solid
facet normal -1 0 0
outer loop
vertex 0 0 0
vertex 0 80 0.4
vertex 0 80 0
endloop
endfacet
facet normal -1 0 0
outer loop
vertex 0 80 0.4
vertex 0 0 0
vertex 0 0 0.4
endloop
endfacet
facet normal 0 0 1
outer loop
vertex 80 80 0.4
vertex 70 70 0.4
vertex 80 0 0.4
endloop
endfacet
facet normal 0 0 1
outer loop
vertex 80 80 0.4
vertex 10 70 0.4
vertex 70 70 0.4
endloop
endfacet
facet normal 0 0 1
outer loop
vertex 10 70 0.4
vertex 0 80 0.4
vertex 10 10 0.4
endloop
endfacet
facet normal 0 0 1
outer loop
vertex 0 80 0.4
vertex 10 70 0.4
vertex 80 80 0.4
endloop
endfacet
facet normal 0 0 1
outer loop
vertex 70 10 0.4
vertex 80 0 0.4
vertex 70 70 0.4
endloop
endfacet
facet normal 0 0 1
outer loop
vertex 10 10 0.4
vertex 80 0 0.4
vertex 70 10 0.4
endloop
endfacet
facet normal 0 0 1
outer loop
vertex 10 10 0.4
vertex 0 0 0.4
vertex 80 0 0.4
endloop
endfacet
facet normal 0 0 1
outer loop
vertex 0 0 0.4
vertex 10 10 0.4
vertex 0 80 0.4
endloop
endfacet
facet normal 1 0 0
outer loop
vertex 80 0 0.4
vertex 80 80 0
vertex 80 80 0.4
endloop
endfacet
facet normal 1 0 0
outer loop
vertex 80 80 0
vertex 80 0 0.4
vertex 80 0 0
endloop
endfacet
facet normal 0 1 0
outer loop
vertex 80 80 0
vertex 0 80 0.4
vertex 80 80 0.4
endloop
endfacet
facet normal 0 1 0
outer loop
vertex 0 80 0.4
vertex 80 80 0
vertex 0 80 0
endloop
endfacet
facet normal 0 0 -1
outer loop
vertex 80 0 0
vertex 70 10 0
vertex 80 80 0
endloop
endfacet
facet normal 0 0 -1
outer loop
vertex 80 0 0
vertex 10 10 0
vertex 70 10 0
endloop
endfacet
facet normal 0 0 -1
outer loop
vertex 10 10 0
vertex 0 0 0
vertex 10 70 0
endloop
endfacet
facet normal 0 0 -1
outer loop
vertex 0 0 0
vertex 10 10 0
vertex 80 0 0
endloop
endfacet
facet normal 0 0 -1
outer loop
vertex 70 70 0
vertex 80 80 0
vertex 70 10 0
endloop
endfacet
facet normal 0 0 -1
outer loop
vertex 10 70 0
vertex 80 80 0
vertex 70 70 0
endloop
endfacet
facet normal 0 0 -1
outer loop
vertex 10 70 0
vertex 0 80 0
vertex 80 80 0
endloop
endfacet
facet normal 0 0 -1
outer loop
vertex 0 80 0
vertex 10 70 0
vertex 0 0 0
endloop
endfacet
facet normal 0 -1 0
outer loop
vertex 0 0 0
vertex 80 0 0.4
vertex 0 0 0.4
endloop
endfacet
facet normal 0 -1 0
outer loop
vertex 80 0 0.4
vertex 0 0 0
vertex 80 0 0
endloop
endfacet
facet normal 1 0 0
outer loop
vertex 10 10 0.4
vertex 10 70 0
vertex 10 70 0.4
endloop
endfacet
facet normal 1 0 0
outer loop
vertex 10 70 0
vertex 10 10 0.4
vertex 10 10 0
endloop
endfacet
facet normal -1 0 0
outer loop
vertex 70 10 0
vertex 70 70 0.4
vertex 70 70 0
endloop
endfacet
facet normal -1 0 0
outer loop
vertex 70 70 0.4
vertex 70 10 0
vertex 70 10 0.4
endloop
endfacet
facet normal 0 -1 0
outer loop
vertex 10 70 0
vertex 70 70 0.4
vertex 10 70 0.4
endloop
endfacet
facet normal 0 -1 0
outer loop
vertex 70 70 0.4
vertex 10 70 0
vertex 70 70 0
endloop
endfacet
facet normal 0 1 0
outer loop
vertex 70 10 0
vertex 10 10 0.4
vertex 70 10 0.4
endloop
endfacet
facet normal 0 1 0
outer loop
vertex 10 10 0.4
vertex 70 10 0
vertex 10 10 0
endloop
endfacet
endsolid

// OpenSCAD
length = 80;
edgeThickness = 10;
height = .4;
innerLength = length - 2*edgeThickness;

difference() {
    cube([length, length, height]);
    
    translate([edgeThickness, edgeThickness, 0])
    cube([innerLength, innerLength, height]);
}
